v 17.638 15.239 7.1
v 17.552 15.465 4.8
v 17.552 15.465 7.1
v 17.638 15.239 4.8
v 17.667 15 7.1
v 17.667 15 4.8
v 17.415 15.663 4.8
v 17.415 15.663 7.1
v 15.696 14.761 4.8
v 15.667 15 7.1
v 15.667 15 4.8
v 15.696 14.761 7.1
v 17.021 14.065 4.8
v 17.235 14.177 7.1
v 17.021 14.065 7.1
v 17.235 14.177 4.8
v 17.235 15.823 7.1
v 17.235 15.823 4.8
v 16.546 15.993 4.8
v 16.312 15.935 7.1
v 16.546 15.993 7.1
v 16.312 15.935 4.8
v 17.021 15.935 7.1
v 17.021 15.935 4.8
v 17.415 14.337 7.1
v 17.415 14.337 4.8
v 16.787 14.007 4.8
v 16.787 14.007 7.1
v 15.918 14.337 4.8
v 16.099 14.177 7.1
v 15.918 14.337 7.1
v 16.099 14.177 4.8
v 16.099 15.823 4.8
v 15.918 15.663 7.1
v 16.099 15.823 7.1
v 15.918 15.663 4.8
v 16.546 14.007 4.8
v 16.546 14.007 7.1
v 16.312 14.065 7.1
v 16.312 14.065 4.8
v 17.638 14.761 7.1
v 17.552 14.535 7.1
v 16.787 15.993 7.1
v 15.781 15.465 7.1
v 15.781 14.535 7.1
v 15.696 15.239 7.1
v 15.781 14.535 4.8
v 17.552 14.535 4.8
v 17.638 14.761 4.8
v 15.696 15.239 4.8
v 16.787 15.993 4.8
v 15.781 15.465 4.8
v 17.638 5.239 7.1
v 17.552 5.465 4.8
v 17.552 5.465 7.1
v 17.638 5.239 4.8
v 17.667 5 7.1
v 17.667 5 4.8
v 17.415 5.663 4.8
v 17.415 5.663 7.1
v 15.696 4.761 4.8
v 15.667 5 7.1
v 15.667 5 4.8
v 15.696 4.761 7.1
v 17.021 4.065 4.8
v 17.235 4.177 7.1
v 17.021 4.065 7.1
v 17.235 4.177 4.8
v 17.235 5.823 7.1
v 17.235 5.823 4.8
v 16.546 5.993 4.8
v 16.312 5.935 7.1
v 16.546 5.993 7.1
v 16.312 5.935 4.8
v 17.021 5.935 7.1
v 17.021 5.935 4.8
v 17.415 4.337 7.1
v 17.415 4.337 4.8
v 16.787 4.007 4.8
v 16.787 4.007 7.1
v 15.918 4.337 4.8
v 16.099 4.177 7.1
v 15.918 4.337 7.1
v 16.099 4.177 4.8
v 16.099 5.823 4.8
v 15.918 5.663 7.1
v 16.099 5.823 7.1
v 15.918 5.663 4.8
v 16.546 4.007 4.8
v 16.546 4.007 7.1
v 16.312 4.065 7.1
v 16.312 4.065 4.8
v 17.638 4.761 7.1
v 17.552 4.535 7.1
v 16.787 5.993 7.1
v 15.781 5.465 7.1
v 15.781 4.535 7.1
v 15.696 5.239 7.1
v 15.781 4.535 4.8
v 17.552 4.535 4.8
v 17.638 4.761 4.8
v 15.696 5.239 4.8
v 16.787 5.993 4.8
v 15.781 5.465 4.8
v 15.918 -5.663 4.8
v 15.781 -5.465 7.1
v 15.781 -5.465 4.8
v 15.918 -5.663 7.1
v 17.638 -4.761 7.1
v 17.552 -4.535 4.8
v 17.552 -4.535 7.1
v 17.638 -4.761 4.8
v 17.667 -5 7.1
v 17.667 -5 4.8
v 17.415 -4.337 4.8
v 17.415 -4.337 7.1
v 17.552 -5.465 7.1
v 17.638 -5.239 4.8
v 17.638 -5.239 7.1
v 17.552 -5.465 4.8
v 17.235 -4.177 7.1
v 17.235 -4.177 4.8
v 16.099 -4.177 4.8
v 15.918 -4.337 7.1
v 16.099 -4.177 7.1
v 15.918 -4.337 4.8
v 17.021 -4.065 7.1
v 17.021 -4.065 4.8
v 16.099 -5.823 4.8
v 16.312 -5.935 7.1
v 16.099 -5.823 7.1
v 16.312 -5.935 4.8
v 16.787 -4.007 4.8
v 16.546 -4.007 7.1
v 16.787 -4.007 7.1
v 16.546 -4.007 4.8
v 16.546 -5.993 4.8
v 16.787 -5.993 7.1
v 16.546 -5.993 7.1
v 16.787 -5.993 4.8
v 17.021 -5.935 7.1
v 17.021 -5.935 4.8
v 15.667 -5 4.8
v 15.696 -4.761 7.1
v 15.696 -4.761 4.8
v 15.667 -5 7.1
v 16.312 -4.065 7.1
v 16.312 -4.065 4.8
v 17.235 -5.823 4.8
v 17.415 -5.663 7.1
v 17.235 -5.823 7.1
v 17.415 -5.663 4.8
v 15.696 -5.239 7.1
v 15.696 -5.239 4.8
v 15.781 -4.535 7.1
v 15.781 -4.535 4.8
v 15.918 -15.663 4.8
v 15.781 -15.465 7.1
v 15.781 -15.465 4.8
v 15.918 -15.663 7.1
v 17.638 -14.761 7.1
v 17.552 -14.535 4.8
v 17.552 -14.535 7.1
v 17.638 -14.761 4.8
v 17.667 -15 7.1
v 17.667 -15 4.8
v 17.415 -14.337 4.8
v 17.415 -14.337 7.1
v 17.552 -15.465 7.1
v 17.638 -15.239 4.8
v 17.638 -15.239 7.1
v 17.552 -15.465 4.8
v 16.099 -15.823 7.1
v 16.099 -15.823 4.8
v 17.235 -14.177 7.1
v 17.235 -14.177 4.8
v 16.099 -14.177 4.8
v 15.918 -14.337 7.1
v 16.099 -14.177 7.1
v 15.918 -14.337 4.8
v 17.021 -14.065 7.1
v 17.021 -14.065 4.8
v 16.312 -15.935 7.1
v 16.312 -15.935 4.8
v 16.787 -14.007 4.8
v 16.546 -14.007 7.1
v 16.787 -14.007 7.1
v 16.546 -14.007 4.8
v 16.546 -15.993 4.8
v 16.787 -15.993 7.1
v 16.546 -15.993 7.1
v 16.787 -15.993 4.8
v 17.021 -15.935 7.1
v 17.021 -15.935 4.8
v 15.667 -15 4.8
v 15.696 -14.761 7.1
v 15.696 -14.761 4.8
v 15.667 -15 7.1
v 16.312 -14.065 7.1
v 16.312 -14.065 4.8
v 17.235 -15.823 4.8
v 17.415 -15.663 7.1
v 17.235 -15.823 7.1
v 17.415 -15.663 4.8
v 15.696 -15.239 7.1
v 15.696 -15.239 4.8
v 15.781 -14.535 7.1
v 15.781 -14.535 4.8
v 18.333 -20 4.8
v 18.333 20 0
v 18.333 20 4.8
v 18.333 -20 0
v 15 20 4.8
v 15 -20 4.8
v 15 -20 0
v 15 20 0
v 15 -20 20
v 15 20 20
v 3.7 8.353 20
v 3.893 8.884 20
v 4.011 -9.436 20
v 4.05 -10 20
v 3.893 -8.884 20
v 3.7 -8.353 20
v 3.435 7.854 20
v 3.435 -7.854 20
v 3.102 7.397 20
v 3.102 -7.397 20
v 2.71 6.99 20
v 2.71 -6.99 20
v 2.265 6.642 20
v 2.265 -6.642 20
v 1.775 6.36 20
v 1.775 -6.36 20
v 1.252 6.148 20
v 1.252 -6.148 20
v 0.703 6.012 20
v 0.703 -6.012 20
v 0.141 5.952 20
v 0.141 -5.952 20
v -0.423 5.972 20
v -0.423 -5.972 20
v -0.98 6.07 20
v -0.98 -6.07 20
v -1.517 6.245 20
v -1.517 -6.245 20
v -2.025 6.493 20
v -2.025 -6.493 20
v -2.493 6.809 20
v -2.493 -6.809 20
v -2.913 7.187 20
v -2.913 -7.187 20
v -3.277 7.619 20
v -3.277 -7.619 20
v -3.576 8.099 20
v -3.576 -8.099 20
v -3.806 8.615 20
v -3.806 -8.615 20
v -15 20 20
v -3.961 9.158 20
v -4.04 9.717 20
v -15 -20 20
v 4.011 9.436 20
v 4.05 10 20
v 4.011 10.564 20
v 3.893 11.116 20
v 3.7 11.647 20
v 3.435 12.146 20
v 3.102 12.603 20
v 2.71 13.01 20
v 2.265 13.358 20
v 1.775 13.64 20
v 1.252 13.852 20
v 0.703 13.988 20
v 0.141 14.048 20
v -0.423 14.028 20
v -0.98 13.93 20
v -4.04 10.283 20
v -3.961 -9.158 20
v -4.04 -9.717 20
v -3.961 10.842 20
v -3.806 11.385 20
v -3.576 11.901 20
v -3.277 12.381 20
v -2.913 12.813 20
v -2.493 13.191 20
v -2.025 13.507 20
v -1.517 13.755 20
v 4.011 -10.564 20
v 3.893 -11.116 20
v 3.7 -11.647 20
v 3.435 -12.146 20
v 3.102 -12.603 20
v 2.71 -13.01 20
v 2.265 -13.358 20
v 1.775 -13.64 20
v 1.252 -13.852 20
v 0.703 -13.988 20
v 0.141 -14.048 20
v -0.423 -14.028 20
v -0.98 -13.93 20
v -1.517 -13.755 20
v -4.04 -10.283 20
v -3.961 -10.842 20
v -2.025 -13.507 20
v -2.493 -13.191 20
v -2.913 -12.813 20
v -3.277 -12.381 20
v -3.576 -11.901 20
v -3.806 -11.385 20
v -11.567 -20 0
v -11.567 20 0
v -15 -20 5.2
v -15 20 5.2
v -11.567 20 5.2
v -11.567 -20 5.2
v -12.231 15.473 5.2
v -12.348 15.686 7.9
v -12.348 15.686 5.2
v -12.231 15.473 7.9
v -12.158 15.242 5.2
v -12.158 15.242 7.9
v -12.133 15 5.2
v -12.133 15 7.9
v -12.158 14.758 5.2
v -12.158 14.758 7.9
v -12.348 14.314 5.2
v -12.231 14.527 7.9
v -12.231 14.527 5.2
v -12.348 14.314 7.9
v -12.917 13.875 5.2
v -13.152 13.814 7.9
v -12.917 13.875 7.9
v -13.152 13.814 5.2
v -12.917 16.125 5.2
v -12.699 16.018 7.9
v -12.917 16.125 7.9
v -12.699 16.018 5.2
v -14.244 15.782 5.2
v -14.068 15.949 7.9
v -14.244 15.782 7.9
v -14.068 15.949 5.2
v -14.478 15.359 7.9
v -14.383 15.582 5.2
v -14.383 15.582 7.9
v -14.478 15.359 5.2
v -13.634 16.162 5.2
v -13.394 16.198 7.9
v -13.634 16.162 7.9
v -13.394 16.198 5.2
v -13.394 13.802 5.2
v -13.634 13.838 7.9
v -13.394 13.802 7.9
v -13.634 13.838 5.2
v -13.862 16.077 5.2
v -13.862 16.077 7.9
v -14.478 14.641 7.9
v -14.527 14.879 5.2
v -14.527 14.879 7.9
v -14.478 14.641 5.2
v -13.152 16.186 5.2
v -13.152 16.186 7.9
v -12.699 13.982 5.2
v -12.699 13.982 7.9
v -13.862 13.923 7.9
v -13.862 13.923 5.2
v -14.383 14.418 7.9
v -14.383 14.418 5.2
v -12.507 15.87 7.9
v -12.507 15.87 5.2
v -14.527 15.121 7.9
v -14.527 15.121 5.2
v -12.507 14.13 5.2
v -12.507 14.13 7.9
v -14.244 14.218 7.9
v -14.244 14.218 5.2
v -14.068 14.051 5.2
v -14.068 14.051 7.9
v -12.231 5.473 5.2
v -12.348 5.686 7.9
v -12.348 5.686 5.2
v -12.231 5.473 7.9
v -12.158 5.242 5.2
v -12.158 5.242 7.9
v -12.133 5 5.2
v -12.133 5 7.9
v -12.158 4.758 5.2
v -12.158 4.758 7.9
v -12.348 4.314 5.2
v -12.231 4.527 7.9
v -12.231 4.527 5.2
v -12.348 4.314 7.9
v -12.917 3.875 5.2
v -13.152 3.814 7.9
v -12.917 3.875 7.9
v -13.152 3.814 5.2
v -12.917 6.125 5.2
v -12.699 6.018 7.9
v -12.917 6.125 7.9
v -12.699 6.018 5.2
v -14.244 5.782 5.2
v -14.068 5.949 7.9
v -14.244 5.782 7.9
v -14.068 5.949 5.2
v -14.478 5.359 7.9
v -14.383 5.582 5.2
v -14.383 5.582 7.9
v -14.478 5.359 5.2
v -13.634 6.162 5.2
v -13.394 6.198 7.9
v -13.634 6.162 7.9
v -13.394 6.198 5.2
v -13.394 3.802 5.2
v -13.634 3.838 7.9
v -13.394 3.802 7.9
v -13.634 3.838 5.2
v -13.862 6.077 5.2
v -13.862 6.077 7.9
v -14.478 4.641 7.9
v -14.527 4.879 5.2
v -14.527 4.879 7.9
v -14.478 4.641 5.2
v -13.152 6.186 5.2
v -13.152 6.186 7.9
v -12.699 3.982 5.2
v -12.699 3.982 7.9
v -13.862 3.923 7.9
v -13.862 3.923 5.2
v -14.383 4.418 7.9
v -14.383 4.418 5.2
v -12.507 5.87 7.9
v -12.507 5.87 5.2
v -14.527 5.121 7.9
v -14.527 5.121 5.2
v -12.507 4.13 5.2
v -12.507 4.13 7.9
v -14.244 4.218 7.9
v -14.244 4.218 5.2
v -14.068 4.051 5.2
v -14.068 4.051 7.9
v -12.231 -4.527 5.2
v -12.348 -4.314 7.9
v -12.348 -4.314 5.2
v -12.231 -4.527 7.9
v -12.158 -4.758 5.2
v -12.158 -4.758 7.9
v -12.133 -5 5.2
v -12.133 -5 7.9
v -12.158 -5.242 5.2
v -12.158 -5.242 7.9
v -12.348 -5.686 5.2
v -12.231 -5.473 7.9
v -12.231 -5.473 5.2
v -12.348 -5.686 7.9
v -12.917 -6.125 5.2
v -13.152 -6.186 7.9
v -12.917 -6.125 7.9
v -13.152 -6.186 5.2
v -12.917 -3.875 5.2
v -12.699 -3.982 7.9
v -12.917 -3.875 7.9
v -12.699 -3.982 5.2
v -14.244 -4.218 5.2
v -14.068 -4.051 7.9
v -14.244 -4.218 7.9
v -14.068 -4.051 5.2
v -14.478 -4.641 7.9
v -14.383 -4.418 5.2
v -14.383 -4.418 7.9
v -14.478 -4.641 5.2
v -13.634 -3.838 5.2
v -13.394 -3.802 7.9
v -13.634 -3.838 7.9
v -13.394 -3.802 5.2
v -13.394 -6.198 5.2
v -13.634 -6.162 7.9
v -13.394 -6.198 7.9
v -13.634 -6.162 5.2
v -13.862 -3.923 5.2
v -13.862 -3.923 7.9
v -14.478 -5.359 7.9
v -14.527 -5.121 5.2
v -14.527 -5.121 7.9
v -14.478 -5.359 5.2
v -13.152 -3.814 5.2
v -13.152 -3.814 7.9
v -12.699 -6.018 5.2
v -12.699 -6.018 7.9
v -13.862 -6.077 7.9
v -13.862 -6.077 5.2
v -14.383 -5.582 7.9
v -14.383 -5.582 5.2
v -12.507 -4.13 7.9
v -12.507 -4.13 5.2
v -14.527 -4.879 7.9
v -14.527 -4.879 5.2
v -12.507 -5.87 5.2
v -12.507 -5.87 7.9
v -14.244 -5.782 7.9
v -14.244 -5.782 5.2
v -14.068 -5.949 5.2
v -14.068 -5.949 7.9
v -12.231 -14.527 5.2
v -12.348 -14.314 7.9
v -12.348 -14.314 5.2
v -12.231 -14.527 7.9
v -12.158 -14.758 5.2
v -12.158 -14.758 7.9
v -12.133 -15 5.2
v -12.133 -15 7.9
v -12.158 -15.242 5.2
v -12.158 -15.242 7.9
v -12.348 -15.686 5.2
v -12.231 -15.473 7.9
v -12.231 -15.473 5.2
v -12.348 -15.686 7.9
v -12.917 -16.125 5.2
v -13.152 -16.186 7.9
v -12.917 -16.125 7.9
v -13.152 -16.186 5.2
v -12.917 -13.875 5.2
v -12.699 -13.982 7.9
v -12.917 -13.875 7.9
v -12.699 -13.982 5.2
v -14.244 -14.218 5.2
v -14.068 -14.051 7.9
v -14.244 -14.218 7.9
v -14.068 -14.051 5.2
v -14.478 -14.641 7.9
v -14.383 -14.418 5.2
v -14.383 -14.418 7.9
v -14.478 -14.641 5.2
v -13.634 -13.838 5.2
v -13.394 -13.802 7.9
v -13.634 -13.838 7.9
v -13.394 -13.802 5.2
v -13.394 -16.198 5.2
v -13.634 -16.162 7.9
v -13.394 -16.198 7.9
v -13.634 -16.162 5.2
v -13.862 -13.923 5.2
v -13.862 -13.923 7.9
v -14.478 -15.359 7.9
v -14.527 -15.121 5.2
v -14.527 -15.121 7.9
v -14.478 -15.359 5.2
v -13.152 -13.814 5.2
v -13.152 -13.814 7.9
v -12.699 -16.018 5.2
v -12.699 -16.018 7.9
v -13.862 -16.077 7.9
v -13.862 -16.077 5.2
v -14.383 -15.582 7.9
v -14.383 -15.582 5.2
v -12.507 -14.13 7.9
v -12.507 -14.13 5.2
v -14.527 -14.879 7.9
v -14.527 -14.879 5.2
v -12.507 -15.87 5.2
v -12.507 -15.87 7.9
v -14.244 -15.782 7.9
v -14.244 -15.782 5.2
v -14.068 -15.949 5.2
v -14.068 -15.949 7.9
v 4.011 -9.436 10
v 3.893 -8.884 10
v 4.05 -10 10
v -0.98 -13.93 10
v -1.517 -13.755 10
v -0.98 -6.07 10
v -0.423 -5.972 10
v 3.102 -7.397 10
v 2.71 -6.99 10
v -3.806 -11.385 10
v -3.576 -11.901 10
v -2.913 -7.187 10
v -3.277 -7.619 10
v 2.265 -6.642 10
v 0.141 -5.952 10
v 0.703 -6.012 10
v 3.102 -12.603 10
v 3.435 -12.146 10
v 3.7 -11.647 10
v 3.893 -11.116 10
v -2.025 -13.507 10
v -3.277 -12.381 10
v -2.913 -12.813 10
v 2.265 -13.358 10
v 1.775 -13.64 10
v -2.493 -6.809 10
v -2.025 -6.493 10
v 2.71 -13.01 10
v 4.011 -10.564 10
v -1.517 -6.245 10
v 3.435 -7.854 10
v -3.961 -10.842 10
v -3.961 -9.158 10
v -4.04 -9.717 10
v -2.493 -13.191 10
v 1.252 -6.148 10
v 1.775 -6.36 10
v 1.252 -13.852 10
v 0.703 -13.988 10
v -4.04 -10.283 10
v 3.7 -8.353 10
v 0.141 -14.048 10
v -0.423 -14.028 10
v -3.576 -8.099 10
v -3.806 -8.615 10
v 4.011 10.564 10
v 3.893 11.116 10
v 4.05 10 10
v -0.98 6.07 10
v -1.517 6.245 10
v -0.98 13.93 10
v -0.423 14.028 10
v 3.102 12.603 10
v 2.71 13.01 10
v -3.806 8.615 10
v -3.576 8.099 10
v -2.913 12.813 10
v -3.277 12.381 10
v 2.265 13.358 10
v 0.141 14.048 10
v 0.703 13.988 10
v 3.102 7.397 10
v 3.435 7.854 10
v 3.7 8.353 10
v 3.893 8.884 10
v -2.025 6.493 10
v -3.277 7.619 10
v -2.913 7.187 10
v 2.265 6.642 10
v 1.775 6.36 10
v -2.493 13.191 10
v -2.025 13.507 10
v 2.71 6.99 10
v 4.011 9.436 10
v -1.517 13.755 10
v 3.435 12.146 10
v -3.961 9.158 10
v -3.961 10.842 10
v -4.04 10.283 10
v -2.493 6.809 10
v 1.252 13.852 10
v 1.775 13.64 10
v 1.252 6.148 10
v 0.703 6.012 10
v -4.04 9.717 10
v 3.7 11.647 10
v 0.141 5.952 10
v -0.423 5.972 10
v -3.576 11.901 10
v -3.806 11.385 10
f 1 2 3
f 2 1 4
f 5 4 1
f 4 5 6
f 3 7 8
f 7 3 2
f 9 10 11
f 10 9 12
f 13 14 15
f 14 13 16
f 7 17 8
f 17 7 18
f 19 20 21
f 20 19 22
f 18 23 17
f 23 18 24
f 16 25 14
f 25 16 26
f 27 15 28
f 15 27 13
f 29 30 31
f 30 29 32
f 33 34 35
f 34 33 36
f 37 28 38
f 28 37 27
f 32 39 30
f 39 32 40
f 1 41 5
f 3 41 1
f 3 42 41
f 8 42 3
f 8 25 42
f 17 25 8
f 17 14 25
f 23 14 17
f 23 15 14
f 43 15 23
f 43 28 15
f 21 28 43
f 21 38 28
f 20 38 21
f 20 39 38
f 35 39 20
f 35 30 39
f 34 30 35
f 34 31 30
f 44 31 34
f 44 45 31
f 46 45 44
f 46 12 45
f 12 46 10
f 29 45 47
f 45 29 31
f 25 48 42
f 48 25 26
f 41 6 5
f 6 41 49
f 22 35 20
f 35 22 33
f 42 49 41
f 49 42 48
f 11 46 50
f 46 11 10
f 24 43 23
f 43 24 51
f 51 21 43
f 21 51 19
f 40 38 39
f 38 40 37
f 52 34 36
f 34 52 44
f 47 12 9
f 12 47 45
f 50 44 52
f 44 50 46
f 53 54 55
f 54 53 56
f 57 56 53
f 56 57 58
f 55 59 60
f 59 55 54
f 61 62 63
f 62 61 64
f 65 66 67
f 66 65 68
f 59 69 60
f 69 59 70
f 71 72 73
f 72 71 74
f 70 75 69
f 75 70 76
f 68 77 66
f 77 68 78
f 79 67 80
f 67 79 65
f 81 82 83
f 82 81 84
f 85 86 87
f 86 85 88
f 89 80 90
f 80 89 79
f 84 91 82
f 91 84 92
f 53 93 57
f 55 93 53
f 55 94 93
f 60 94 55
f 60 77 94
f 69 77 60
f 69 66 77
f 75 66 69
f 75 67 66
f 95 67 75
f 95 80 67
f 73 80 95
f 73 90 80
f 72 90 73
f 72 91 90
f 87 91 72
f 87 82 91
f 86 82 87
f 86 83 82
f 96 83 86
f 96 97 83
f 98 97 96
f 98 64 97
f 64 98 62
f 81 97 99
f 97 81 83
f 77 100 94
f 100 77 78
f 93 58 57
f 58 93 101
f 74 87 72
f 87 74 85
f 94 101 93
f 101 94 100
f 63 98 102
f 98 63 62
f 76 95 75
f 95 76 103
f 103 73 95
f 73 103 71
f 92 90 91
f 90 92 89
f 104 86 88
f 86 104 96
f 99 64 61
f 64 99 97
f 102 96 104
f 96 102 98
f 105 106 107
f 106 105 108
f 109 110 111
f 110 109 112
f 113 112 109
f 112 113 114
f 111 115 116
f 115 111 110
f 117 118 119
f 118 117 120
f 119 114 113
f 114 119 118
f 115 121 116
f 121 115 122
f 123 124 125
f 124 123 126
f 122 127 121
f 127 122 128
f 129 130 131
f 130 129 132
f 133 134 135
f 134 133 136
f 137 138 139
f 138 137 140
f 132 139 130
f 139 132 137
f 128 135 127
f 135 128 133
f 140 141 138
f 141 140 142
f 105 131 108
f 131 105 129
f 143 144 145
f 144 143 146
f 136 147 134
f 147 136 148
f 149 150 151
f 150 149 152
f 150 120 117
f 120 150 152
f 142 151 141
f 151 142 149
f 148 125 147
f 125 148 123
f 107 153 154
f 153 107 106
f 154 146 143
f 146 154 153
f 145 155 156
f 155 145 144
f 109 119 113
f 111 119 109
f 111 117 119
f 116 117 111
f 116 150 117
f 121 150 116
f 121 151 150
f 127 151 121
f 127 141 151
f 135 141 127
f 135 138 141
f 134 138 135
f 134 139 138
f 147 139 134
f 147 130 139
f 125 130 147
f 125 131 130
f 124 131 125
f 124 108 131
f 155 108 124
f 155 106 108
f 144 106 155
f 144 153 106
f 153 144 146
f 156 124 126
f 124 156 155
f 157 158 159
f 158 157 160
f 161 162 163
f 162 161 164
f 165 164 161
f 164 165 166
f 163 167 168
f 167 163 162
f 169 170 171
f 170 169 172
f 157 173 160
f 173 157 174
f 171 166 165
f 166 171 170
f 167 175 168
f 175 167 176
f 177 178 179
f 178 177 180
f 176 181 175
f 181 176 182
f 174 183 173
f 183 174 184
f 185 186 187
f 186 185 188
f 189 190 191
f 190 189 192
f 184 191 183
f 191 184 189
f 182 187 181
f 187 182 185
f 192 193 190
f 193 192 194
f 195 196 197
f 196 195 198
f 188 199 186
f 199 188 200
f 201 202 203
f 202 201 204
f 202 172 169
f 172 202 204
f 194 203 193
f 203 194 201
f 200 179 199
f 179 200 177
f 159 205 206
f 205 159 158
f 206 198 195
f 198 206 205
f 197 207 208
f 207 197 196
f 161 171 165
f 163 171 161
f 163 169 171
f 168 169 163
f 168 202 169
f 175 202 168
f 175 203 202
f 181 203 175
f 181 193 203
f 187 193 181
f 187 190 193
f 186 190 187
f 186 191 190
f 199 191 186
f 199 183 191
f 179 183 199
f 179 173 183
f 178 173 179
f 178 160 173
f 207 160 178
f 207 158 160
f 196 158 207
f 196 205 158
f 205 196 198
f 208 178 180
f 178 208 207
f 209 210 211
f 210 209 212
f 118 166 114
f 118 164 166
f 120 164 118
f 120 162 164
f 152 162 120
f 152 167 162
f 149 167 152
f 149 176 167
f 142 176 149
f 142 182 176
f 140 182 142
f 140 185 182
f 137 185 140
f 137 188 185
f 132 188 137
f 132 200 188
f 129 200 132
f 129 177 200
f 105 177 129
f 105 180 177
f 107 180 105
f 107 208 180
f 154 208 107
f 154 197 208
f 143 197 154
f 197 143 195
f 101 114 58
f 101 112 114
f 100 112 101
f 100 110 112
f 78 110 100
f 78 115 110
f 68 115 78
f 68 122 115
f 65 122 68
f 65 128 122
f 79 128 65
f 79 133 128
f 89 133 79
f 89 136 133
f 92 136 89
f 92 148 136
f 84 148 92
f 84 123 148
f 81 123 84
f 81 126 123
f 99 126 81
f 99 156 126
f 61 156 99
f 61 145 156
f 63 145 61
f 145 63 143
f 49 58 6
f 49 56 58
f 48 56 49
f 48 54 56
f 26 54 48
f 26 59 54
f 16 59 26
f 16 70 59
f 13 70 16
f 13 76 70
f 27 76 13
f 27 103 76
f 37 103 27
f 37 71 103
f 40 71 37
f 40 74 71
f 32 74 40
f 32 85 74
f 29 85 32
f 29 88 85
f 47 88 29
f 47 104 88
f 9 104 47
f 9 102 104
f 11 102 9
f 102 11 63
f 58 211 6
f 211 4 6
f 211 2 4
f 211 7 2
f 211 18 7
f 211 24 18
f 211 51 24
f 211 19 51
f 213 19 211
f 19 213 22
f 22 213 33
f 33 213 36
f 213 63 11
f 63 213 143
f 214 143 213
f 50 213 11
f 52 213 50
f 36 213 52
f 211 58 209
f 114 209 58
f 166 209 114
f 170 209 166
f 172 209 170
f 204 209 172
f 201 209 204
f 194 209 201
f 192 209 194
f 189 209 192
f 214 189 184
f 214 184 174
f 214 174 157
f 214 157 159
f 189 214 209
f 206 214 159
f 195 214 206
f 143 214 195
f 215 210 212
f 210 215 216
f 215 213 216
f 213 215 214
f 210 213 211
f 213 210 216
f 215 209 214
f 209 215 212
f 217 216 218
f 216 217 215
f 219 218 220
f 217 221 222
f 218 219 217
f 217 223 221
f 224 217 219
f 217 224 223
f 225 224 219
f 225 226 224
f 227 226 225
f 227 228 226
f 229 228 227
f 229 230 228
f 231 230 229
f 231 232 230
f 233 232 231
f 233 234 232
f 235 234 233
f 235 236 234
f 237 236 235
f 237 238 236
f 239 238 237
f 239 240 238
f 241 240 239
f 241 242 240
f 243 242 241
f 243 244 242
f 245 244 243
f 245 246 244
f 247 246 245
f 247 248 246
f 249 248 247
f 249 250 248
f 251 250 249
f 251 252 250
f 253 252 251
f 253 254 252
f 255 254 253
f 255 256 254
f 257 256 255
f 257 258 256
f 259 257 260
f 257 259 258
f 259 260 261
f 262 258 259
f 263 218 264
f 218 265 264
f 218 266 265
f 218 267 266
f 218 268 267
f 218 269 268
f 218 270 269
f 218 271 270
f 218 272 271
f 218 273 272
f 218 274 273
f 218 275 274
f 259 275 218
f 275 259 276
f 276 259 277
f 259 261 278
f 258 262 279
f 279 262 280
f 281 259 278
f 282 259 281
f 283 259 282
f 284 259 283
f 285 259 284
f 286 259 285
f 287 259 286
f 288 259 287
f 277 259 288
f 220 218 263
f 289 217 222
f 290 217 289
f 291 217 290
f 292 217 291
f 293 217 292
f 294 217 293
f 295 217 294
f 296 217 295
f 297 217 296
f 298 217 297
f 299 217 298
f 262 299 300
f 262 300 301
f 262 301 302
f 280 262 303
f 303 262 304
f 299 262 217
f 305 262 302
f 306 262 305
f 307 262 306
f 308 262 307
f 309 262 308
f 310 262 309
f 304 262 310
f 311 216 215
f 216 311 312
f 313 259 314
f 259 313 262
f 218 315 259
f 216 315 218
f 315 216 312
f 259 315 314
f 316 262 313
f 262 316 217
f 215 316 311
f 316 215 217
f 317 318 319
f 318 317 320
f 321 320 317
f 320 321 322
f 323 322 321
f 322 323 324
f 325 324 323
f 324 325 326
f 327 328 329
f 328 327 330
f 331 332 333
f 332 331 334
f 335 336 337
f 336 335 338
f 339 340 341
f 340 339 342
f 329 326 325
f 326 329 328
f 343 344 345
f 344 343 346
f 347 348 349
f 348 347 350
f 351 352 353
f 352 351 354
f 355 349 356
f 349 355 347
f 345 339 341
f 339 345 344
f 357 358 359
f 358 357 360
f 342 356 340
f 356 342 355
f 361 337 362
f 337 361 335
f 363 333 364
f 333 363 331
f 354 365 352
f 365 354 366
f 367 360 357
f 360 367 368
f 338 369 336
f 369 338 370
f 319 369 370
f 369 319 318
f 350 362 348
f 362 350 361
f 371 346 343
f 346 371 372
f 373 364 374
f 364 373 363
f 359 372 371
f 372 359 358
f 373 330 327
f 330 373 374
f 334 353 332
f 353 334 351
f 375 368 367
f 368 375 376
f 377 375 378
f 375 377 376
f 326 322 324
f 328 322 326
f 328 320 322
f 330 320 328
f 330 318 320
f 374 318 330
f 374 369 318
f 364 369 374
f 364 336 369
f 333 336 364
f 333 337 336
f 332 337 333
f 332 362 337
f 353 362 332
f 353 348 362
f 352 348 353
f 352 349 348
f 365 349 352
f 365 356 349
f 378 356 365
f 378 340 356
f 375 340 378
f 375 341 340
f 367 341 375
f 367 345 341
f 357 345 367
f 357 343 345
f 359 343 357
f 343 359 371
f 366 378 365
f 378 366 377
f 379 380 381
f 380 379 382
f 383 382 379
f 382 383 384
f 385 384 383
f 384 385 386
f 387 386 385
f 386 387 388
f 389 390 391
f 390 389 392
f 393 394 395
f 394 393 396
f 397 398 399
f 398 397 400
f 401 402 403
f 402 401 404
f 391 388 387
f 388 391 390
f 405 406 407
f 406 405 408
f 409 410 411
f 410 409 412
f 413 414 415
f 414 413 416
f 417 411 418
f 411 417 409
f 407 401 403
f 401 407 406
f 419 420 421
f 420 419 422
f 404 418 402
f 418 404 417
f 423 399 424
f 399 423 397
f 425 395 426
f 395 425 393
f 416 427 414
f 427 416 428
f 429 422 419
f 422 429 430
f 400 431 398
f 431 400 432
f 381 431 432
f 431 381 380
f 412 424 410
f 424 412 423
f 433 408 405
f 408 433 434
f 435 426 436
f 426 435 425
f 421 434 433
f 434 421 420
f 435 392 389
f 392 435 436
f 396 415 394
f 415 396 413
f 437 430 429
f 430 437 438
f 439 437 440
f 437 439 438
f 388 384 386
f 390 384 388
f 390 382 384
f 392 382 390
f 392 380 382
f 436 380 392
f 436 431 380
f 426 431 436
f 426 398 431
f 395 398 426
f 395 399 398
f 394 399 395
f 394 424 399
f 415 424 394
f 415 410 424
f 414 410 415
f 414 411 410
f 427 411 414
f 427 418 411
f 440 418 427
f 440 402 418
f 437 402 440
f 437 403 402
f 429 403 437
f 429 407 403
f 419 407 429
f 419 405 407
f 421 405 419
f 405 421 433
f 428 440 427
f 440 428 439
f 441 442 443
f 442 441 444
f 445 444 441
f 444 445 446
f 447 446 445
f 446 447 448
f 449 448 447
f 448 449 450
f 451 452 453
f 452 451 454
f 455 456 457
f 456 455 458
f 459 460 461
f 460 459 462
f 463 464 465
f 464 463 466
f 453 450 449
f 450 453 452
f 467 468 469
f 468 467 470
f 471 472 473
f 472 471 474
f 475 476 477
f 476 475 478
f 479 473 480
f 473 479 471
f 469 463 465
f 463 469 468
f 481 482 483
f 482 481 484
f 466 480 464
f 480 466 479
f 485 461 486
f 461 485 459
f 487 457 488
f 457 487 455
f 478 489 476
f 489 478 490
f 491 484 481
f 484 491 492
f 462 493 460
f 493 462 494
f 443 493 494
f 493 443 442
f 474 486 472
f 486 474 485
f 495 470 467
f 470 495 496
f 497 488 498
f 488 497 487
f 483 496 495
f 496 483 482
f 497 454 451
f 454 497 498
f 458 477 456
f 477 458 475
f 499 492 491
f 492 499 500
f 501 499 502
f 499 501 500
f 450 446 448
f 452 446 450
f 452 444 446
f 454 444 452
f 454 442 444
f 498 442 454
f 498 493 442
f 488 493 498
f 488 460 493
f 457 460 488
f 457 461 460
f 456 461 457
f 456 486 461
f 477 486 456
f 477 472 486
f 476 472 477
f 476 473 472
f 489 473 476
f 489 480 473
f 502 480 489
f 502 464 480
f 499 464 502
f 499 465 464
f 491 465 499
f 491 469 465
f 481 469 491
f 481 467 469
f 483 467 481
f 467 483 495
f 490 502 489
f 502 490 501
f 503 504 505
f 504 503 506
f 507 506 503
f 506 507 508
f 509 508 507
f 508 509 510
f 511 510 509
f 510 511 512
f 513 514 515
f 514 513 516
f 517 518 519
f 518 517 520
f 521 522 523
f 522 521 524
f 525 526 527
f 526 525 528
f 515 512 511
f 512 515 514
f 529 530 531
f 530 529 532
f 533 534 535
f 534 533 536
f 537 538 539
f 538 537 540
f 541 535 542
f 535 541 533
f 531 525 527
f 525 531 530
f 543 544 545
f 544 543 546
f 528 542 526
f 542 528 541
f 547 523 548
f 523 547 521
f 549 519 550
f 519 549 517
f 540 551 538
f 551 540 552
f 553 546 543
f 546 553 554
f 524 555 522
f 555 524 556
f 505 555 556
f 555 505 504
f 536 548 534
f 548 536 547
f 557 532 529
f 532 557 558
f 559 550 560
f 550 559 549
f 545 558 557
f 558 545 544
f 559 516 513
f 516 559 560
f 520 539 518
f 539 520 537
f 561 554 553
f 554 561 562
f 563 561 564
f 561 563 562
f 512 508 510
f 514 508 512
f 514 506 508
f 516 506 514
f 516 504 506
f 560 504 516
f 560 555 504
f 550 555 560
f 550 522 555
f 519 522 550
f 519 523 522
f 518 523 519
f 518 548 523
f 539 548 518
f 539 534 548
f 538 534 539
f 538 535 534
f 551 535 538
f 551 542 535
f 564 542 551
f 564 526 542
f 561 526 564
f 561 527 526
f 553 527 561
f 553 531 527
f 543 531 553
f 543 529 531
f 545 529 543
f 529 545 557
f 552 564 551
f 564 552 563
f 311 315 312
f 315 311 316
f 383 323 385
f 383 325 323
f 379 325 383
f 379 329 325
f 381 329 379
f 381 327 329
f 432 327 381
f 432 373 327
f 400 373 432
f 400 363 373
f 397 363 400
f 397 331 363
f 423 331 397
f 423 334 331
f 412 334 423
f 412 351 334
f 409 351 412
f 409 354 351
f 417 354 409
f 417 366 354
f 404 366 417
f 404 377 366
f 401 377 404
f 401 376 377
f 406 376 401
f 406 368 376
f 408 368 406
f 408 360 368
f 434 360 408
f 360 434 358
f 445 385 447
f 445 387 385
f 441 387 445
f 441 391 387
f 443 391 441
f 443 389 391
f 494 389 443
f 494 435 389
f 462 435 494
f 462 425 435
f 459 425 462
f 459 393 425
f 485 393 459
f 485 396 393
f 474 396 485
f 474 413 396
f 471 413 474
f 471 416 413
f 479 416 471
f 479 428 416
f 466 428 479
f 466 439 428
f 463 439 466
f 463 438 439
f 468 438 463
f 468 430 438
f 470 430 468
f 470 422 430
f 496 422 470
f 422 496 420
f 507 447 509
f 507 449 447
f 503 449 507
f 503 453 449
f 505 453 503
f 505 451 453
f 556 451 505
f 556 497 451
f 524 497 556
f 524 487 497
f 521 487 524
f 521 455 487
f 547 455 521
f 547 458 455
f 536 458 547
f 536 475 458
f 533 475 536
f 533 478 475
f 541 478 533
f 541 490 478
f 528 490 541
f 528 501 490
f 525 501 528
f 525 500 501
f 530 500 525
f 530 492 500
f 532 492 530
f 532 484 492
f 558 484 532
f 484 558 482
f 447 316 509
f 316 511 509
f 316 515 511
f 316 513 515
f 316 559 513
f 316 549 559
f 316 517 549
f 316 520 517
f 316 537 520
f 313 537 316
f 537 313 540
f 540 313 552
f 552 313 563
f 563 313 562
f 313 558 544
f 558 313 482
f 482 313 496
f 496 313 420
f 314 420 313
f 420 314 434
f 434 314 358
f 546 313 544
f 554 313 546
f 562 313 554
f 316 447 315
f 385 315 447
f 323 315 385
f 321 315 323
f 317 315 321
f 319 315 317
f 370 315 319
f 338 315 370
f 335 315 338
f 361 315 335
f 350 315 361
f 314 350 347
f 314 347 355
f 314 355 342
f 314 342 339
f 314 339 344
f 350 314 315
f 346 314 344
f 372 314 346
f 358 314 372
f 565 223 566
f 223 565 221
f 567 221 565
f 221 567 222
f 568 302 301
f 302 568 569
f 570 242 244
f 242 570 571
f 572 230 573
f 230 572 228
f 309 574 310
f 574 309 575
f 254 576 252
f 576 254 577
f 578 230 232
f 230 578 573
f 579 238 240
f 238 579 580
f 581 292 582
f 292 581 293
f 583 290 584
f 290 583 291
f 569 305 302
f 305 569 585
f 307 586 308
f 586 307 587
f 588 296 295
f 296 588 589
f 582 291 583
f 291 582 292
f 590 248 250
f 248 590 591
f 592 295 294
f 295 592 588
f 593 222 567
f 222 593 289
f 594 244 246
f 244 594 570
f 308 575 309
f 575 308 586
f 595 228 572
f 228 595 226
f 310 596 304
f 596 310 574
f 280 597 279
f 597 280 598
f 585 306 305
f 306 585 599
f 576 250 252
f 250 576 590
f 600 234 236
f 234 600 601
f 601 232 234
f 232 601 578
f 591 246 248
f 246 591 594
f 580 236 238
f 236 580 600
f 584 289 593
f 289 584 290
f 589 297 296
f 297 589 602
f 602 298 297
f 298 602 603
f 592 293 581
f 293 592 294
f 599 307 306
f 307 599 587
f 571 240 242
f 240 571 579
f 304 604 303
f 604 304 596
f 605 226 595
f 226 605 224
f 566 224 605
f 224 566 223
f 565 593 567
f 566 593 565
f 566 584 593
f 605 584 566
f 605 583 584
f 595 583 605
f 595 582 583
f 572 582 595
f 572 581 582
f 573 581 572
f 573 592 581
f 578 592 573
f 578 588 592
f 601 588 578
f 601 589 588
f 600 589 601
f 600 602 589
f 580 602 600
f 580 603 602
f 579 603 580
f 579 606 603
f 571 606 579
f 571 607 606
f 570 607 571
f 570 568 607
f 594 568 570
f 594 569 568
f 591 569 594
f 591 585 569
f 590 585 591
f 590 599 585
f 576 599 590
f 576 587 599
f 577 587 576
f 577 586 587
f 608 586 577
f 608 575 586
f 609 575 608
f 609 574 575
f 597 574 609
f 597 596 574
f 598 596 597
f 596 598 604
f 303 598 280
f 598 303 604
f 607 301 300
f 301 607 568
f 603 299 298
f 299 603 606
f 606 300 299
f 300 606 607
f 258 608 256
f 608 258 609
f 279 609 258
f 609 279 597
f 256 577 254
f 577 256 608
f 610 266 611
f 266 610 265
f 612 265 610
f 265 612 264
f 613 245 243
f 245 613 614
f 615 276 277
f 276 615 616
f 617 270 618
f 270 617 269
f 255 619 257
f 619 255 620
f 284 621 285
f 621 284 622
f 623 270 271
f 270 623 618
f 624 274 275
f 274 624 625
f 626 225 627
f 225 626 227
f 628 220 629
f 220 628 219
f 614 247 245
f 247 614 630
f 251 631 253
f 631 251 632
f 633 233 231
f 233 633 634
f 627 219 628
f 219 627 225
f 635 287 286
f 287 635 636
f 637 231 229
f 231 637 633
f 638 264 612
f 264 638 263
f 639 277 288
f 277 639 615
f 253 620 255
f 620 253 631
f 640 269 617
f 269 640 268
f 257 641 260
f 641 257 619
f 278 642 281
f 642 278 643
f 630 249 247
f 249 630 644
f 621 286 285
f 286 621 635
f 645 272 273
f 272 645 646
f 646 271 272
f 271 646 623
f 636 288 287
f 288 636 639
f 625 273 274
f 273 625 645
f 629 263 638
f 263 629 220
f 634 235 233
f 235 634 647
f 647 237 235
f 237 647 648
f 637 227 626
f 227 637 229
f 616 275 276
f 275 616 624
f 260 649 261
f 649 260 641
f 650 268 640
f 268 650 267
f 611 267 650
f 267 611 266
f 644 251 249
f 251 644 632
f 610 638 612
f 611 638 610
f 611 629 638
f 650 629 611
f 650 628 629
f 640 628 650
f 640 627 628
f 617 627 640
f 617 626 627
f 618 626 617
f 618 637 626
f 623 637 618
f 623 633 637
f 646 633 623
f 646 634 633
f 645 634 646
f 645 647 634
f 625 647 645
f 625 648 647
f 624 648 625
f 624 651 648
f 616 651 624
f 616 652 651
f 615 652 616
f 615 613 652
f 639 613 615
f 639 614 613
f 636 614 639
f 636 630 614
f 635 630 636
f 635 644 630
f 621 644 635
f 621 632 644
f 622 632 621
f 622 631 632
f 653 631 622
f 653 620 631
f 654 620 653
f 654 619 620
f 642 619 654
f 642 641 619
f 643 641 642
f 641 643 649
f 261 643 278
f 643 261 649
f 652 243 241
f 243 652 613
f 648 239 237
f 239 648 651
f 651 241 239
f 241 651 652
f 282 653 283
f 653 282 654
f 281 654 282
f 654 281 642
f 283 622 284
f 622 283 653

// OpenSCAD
// file: ../base.scad
// The x-axis has the connection to the other units
// There is one connection peg per x
// Minimum unit is x=1, y=1, z=1
// If you have x=1, then the x-axis will be extended 
// with 1/3 for the connectors 
// the female version will can still be used and therefore
// counted within the unit

/* [Setup Parameters] */
$fa = 8;
$fs = 0.25;


module base(x,y,z) {
    u = 10;
    t = u;

    width = u*x;
    depth = u*y;
    height = t*z;

    margin = 0.2;

    male_connection_d = 2;
    female_connection_d = male_connection_d+margin*2;
    connector_width = u/3;
    connector_height = t/2;

    module connector(width, height, cylinder_height, cylinder_d) {
        translate([0, 0, 0])
        union() {
            translate([0, 0, height/2])
            cube([width, depth, height], center=true);
            for (i = [1:1:y]) {
                translate([0, depth/2+u/2-(u)*i, height-0.1])
                cylinder(h=cylinder_height+0.1, d=cylinder_d);
            }
        }
    }

    module male_connector() {
        width = connector_width;
        height = connector_height-margin;
        cylinder_height = connector_height/2-margin;
        cylinder_d = male_connection_d;

        connector(width, height, cylinder_height, cylinder_d);
    }

    module inverted_female_connecor() {
        width = connector_width+margin;
        height = connector_height+margin;
        cylinder_height = connector_height/2+margin;
        cylinder_d = female_connection_d;

        connector(width, height, cylinder_height, cylinder_d);
    }

    difference() {
        union() {
            translate([0, 0, height/2])
            cube([width, depth, height], center=true);
            translate([width/2+connector_width/2, 0, 0])
            male_connector();
        }
        union() {
            translate([-width/2+connector_width/2, 0, 0])
            inverted_female_connecor();
        }
    }
}


//base(2,7,2);

module connector(y) {
    u = 10;
}
// main file
include <../base.scad>

flux_tip1_d = 8.1;//7.9;
flux_tip2_d = 8.1;

xunits = 3;
yunits = 4;
zunits = 2;

difference() {
    base(xunits,yunits,zunits);

    #translate([0,-10,20-10])
    cylinder(h=10, d=flux_tip2_d);

    translate([0,10,20-10])
    cylinder(h=10, d=flux_tip1_d);
}
